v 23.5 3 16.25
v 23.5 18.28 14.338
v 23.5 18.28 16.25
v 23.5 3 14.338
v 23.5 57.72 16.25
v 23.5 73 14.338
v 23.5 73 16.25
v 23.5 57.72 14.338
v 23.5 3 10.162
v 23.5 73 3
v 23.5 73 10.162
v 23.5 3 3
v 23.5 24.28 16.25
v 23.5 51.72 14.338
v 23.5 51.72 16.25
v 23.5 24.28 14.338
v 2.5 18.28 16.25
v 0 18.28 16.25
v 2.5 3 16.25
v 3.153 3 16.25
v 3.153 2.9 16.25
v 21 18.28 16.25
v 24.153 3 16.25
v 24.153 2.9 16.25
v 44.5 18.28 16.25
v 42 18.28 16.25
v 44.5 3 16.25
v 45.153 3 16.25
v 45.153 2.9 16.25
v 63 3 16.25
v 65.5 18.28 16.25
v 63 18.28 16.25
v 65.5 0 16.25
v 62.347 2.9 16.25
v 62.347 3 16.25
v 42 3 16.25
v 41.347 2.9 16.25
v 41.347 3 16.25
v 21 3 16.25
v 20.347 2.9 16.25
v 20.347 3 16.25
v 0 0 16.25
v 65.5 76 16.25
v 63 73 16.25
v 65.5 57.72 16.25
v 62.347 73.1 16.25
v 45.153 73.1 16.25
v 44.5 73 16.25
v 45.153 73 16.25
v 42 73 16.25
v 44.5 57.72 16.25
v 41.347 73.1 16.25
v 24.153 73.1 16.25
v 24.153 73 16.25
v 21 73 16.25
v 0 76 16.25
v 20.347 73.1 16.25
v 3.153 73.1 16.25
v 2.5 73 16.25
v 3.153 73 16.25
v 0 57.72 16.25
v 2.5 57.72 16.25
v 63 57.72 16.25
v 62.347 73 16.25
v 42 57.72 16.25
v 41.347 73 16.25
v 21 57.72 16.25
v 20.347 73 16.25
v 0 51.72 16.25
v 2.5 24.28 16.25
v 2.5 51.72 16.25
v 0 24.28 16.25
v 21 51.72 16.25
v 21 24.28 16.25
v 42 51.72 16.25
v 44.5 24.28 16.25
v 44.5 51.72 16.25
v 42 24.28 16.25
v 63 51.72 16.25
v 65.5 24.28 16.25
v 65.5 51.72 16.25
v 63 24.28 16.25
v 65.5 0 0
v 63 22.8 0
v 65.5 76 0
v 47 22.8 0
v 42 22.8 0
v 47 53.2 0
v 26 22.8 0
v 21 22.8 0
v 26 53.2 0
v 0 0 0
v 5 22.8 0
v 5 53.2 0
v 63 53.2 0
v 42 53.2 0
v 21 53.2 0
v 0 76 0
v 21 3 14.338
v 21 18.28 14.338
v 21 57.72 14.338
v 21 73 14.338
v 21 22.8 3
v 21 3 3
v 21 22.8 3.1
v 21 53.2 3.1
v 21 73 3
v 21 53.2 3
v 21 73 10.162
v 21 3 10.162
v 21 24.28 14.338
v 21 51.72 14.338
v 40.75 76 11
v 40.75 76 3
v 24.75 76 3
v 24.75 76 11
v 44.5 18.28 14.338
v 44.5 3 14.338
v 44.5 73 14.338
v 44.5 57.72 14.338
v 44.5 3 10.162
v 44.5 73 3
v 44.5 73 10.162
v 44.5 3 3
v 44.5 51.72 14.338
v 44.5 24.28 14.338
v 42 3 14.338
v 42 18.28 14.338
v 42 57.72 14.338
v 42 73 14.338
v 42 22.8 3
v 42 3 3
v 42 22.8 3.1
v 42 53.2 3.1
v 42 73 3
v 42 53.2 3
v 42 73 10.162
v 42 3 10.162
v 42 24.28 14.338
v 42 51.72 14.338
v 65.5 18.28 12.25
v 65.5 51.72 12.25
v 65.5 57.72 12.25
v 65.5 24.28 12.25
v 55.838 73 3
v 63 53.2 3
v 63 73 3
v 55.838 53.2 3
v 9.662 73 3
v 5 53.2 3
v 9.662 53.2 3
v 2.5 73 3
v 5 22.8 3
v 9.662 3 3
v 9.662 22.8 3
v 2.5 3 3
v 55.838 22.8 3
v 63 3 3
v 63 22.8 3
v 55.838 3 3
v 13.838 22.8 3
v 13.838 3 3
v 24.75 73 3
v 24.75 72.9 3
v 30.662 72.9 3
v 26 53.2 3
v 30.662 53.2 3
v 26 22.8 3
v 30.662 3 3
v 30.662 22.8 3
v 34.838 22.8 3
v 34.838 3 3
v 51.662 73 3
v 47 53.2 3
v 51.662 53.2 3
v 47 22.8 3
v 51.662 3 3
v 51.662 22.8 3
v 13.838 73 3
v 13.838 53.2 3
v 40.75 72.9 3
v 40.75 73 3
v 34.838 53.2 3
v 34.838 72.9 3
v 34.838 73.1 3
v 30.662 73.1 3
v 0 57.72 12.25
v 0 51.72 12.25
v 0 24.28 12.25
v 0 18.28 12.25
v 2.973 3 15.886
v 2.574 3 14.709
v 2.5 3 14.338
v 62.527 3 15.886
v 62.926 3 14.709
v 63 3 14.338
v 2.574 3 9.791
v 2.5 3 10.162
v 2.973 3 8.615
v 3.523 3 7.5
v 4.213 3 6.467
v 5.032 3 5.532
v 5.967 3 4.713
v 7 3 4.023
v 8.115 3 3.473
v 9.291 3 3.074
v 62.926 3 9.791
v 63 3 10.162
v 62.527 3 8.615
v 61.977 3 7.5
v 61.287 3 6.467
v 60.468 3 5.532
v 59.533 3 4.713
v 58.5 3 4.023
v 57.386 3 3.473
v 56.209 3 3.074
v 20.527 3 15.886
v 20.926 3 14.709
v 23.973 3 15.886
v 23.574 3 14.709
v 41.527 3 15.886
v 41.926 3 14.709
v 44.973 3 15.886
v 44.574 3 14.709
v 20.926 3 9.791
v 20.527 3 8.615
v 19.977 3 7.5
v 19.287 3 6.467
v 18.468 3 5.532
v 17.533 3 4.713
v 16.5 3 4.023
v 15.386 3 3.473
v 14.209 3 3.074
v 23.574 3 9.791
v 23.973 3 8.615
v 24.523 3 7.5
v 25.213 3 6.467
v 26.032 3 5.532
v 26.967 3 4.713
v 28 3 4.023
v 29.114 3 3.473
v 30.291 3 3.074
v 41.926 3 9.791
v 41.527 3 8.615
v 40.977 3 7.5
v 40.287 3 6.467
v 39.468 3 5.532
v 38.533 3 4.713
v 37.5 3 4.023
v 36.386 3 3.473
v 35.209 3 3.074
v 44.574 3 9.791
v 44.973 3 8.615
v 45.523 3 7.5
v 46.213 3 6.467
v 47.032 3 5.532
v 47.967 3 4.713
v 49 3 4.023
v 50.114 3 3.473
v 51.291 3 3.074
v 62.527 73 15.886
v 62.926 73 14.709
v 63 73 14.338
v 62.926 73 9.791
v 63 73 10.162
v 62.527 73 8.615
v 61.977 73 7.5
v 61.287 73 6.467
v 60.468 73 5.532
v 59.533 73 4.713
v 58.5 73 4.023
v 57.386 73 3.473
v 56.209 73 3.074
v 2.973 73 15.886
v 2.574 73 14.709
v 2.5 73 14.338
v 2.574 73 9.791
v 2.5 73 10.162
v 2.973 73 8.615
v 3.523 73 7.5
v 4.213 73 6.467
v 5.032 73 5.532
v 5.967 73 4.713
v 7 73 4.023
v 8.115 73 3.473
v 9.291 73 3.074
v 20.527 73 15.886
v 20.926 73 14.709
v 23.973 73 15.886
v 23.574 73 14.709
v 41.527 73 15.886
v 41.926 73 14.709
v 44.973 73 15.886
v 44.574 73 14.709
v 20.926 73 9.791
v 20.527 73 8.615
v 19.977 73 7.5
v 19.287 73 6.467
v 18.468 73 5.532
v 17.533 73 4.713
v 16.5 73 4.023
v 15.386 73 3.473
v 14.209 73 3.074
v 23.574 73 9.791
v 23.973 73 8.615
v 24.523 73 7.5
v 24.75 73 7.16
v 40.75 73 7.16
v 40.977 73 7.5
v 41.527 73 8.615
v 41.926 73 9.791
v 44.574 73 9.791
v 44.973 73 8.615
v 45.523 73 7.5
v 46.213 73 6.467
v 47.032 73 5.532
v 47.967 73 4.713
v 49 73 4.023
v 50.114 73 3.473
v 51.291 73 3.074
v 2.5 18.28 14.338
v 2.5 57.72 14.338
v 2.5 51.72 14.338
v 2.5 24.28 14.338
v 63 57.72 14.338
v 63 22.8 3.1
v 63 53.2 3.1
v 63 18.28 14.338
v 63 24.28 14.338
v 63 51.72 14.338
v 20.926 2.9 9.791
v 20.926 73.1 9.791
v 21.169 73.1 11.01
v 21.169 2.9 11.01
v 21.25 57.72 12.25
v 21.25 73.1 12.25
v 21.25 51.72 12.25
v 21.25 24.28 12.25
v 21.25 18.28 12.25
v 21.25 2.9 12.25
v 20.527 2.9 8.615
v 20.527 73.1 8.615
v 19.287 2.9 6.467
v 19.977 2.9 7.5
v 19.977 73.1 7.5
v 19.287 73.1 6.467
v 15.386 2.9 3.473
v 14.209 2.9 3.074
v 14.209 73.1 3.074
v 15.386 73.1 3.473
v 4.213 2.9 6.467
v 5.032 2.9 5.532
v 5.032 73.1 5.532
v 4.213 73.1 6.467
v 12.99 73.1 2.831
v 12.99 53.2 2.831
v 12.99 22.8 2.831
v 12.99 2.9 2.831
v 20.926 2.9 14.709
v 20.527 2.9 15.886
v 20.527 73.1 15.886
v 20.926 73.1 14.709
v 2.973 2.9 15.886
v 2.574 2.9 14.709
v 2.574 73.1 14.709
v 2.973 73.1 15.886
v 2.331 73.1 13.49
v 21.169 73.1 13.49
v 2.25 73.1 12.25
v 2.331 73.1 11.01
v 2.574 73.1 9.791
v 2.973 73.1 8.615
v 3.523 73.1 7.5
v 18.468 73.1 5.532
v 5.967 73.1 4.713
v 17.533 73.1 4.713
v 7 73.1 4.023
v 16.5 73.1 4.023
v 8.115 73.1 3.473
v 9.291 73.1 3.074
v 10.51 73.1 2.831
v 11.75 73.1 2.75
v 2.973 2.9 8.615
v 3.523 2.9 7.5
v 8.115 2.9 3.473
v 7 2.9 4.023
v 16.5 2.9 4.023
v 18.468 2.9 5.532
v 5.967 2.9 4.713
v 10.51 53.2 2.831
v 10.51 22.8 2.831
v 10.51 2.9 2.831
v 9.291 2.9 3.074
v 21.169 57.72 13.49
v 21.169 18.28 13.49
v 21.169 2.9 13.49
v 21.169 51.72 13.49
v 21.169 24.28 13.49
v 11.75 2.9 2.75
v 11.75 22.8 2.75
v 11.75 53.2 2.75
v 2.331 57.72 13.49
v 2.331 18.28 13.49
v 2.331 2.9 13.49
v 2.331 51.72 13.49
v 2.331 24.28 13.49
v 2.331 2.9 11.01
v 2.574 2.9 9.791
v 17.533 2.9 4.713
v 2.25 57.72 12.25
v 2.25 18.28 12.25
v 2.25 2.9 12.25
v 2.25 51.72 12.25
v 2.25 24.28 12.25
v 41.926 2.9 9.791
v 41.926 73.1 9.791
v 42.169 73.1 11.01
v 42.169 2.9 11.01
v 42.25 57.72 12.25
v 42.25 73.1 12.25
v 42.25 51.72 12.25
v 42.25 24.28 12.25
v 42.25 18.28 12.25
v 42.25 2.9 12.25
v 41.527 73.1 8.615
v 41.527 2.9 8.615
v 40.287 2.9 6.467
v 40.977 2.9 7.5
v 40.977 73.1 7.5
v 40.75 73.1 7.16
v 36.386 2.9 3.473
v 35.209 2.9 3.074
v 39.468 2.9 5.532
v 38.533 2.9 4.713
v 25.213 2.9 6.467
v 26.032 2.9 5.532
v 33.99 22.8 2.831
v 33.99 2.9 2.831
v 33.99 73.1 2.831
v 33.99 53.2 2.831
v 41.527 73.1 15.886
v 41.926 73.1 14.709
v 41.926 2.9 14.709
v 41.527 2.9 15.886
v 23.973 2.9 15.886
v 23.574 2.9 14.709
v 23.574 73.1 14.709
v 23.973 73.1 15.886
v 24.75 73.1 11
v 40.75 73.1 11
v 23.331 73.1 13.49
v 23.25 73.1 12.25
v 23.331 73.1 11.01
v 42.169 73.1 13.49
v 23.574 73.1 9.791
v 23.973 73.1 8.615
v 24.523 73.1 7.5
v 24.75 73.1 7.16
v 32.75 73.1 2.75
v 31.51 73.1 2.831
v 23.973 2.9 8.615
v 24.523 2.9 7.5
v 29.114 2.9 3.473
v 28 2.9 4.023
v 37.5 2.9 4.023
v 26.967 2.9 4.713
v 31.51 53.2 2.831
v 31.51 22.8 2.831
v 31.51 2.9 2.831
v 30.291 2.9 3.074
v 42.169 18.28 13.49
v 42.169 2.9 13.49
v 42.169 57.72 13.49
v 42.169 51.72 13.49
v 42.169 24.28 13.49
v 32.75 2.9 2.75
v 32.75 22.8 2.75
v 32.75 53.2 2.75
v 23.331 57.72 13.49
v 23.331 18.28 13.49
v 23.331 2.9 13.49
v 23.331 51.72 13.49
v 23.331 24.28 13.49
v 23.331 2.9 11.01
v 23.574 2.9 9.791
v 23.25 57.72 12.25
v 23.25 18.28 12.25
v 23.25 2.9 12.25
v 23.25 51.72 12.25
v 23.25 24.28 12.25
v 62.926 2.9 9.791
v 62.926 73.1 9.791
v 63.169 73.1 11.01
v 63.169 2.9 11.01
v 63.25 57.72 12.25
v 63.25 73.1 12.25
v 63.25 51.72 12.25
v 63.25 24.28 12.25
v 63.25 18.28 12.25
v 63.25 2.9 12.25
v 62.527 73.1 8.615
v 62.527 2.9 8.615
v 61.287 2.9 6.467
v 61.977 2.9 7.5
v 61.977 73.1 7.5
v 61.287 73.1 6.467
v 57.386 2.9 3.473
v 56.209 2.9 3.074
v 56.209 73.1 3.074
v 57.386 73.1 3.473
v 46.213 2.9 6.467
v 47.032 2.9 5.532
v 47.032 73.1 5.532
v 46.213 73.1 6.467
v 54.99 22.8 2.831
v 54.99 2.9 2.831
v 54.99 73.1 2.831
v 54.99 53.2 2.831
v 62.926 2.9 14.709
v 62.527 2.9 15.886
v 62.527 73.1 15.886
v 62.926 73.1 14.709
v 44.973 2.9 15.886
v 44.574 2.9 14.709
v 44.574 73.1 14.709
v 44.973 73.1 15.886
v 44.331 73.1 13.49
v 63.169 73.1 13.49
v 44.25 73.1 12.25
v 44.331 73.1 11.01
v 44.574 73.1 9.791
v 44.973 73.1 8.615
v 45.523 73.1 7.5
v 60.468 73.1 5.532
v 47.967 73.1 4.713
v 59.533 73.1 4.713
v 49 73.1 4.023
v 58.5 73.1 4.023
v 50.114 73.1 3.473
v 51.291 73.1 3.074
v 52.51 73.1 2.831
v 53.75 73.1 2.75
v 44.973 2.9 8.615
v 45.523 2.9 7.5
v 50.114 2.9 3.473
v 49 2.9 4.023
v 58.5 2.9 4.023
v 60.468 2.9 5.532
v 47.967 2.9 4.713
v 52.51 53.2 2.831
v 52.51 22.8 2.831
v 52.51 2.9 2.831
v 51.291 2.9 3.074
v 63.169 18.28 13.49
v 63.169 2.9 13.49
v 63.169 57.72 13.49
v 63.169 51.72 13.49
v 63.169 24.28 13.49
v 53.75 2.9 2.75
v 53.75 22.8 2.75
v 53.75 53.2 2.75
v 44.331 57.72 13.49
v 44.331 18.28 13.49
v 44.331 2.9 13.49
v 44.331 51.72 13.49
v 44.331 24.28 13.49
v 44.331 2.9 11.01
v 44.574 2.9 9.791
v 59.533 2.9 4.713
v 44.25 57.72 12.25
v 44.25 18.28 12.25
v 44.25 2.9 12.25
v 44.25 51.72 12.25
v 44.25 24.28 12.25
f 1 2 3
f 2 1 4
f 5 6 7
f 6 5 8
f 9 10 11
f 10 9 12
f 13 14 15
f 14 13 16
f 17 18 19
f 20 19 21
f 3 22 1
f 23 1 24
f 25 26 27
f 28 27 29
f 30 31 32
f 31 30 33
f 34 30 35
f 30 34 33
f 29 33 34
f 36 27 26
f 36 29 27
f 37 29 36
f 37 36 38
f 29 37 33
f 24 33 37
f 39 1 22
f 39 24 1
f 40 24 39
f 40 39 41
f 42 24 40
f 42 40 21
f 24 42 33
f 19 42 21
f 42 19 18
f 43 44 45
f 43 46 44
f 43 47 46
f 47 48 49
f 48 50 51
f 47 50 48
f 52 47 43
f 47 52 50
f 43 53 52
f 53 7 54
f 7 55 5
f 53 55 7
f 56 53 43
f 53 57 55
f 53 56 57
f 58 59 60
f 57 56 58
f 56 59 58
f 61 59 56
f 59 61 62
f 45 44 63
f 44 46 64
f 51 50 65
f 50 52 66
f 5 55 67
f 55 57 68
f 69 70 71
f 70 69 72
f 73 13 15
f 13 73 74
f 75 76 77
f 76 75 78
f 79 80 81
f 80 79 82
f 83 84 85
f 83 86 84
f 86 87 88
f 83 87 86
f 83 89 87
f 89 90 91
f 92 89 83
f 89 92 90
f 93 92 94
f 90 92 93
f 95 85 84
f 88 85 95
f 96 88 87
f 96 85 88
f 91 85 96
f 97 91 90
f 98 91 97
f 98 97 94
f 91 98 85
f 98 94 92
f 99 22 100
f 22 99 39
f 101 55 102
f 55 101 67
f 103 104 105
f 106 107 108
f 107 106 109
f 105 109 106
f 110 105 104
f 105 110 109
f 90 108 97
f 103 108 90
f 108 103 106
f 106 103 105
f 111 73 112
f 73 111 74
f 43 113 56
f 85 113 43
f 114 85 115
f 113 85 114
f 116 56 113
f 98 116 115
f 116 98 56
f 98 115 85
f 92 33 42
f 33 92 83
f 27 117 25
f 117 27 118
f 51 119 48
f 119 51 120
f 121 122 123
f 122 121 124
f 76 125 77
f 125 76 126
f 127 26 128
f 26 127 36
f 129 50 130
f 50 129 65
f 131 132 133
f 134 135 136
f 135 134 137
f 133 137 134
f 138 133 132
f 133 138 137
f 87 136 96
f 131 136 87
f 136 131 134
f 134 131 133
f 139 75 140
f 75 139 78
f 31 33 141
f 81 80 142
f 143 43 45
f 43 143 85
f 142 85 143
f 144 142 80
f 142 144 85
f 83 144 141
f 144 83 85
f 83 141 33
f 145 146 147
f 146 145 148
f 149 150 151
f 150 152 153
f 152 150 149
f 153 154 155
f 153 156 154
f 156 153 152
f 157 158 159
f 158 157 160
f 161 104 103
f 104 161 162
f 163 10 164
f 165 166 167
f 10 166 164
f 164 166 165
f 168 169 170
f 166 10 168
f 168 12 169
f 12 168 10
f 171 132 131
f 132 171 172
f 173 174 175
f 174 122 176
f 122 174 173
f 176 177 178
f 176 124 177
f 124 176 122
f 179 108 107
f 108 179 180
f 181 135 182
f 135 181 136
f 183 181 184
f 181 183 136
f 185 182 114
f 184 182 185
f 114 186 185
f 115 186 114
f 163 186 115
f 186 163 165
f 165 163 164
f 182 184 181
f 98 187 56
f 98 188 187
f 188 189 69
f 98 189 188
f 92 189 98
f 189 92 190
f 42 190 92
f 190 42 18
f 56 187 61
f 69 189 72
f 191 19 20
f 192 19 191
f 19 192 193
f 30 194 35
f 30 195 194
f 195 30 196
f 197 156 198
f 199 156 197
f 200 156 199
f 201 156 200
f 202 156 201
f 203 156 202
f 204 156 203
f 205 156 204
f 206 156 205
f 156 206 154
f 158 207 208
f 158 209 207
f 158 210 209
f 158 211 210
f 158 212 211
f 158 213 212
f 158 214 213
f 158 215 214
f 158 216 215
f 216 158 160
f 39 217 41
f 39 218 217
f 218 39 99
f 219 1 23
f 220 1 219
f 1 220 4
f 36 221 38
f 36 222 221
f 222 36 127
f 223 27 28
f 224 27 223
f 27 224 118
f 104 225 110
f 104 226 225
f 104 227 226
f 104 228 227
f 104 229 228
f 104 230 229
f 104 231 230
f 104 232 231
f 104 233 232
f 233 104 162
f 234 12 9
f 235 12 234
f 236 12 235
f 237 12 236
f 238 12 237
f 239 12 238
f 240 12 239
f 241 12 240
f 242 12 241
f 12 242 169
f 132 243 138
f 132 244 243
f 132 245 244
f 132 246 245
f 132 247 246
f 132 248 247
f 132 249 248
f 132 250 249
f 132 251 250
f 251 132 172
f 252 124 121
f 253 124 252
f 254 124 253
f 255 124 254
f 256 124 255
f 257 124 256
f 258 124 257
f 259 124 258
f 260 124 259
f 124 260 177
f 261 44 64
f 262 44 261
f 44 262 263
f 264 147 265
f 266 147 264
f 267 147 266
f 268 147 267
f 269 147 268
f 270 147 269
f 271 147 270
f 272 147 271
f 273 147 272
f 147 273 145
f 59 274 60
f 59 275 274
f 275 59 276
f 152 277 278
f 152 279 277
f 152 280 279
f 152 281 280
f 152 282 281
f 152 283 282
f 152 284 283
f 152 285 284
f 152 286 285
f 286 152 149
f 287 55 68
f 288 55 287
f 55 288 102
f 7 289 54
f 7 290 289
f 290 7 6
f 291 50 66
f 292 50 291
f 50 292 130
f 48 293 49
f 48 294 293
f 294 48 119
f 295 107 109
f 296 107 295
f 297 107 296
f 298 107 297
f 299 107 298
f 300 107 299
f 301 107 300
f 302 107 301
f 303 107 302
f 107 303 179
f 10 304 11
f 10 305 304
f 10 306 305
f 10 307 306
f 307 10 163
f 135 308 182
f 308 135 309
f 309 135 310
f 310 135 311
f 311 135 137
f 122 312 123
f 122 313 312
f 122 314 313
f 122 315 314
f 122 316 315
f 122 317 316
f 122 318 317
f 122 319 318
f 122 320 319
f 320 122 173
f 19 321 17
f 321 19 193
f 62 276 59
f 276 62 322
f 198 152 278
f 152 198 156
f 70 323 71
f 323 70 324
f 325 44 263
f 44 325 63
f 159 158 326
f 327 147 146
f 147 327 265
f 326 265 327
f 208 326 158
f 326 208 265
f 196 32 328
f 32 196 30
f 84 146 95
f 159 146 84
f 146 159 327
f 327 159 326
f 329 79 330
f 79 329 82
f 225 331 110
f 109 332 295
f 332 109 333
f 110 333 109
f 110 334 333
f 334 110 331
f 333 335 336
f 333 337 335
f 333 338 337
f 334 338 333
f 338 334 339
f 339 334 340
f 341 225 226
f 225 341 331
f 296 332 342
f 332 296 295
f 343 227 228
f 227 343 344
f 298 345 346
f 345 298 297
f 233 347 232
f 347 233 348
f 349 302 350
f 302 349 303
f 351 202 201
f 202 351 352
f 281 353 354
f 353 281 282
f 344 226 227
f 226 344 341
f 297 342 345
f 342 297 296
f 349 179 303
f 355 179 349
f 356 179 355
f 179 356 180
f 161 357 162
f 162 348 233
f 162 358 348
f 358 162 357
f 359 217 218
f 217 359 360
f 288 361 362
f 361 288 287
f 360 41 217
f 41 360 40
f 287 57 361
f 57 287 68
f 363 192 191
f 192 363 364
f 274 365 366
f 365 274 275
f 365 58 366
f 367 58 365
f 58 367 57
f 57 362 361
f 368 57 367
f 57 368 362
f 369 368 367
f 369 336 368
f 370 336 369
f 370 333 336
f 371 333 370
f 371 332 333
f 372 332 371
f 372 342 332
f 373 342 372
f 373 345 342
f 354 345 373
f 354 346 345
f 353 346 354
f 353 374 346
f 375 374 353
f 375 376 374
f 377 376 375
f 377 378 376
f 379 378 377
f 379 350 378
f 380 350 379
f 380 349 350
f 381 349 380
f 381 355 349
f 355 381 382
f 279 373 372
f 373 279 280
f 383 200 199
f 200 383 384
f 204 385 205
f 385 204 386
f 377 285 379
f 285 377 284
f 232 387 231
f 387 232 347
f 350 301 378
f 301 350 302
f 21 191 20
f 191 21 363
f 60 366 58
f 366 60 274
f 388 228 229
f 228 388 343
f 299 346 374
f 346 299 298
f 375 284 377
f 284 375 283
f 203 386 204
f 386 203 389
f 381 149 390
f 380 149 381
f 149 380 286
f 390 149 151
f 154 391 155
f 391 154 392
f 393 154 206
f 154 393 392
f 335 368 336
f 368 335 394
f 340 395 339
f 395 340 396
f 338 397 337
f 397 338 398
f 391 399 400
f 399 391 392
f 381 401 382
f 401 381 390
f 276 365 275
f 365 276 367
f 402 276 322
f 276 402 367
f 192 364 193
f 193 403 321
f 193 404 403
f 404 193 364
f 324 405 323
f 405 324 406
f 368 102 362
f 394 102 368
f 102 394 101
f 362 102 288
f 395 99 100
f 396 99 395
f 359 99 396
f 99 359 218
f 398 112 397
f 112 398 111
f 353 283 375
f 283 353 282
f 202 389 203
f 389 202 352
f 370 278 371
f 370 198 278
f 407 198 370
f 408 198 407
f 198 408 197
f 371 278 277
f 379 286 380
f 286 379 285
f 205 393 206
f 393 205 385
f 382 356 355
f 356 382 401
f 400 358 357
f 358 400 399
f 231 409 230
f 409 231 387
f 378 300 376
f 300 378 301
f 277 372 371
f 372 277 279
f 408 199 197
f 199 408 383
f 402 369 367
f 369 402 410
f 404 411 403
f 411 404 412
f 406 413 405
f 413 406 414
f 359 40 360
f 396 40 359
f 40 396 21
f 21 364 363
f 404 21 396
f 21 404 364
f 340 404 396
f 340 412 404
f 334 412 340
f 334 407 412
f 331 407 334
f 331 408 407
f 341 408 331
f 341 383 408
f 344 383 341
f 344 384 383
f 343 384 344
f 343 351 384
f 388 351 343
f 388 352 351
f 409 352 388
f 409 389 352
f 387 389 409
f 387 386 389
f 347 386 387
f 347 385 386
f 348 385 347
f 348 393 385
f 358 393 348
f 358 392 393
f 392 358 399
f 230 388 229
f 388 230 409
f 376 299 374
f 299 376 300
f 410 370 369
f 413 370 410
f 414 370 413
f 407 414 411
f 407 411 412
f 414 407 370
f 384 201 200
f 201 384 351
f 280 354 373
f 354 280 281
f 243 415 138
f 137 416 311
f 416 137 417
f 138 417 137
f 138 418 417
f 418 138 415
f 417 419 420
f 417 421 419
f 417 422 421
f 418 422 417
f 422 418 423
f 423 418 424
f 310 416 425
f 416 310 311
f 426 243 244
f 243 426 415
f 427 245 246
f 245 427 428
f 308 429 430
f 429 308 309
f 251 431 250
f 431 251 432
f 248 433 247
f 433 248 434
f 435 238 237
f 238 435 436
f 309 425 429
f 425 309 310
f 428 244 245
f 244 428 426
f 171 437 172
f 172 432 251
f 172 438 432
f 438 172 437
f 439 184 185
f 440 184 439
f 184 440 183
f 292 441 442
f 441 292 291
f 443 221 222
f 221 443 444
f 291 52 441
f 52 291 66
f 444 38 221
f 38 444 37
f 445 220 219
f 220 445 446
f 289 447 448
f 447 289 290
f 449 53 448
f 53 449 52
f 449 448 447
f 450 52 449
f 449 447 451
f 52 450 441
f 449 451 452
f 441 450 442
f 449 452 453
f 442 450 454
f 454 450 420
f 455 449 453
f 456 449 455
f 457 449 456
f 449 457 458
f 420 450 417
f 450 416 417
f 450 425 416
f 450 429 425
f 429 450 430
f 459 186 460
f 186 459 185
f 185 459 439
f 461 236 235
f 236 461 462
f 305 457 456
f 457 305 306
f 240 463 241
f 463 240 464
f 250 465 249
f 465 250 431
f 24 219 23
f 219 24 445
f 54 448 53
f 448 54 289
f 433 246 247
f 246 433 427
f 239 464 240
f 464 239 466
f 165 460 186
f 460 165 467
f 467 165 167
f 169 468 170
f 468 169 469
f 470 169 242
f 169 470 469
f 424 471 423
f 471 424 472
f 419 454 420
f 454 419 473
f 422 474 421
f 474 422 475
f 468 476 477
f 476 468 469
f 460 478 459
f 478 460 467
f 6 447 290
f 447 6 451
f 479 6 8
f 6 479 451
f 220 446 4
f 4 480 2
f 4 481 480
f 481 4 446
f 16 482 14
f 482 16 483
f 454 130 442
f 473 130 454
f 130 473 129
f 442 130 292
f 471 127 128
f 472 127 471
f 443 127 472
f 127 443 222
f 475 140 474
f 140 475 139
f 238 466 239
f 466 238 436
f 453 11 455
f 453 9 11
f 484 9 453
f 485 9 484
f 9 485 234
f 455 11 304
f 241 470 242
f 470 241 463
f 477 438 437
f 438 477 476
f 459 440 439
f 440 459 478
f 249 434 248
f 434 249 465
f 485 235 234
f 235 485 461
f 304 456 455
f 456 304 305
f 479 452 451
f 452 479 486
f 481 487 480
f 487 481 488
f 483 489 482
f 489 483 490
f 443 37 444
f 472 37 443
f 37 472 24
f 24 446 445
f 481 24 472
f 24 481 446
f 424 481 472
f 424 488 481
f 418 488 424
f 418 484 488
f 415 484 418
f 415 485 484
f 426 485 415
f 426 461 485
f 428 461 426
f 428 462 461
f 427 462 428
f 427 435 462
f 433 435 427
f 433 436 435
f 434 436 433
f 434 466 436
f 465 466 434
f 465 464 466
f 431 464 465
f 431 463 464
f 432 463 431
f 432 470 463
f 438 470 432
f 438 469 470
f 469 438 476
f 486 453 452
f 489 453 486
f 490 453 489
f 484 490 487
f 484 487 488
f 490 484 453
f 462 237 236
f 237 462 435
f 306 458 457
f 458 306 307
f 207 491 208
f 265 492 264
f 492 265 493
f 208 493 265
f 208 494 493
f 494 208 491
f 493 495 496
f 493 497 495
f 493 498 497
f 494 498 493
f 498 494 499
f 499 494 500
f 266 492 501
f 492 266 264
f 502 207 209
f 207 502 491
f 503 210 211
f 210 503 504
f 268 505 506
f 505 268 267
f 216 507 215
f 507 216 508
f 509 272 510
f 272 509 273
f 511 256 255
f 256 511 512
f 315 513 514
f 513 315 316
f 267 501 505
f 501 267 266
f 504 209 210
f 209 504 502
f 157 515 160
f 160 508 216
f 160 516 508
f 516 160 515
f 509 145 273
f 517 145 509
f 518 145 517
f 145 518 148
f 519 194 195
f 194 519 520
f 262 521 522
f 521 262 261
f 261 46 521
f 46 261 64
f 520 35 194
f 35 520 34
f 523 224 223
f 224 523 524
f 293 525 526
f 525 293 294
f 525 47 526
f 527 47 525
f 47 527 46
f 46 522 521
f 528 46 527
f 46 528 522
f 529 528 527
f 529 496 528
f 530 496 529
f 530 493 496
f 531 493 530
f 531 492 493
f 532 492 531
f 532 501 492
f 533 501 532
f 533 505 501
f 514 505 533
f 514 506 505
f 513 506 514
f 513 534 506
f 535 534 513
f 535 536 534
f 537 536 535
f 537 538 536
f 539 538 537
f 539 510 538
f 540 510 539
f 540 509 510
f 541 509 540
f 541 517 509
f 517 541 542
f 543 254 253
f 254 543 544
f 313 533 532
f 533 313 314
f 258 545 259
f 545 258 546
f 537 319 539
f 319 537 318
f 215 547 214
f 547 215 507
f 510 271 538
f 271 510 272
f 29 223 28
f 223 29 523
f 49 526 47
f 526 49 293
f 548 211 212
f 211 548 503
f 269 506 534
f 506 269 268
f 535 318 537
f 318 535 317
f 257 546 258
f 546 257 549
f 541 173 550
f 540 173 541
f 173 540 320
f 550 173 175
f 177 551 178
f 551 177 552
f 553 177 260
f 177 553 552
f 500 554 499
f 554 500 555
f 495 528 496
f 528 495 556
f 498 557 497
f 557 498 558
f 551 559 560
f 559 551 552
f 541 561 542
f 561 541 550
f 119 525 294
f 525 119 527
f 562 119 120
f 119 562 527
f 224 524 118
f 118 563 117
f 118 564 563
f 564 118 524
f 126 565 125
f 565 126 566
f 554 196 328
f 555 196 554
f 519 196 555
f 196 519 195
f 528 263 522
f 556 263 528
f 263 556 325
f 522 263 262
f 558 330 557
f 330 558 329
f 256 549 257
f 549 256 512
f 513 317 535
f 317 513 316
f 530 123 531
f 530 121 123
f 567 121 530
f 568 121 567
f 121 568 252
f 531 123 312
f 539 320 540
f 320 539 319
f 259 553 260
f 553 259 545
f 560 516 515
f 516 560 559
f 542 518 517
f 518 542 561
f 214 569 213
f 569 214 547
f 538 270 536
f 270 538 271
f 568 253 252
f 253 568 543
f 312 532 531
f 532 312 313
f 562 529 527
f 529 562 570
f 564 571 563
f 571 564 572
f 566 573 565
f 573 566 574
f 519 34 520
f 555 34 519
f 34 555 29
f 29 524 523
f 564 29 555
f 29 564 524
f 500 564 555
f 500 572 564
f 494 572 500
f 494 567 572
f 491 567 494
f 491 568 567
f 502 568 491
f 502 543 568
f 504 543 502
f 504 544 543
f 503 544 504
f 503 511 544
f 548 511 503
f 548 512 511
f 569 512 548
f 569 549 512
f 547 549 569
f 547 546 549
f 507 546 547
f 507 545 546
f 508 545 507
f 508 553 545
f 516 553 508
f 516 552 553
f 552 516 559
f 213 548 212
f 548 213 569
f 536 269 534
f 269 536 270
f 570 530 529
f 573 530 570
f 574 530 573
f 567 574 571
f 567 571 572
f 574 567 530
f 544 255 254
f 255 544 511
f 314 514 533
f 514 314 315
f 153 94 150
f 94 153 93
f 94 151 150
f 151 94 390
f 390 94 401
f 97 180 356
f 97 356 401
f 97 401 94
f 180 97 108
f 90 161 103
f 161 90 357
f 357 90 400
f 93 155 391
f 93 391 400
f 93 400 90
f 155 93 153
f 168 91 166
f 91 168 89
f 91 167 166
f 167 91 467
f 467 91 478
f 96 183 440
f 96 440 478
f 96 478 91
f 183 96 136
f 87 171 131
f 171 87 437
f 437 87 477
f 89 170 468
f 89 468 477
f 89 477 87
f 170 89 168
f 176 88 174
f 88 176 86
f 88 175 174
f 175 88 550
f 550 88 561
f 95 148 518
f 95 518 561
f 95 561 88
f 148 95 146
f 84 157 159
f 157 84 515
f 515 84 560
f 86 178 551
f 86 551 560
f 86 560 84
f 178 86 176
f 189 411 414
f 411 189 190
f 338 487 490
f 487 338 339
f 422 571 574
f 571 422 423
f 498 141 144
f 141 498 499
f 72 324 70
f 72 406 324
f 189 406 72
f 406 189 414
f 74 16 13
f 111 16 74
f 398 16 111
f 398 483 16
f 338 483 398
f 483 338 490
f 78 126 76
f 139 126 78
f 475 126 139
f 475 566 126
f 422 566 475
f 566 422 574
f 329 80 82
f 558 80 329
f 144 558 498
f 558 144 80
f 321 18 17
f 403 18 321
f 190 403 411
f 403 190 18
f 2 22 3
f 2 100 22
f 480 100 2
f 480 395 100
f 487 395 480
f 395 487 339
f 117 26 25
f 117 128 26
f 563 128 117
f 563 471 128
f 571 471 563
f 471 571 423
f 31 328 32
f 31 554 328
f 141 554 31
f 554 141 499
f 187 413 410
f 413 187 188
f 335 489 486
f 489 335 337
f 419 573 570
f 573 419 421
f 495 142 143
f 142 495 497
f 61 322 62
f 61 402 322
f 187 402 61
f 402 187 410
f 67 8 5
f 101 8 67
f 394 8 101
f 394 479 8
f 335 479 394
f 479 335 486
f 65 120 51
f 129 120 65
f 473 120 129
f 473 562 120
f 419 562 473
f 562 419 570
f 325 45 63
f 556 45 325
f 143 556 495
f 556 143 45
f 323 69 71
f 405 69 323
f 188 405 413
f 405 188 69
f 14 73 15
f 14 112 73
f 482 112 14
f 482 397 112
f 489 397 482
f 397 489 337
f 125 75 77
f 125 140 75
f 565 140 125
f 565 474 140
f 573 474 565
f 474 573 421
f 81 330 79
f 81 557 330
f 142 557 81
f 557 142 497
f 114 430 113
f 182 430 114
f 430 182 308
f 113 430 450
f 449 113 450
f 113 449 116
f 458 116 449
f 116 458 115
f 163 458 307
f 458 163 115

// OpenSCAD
// ============================================================
//  MSE-6 — Battery Tray (3× 18650 cells in series = 3S pack)
//  Mounts on Wave Rover expansion plate alongside Jetson tray.
//
//  18650 cell: Ø18.5mm × 65mm (with protection circuit ~70mm)
//  3S pack arranged side-by-side (not in-line) to minimise length
//  Pack footprint: 3 × 18.5mm + walls ≈ 62mm wide × 72mm long
//
//  Features:
//    – 3 cell tubes with spring-tab retention
//    – 2× Velcro strap slots (5mm wide) for belt security
//    – Vent slots between cells
//    – 2× M3 holes matching rover expansion plate holes
//    – Wire exit notch (rear) for battery leads / BMS board
//    – Low-profile: 22mm tall (cell OD + base = 18.5+3.5)
//
//  Wave Rover expansion plate: ~117 x 127mm
//  Jetson tray: 114 x 88mm  →  battery tray fills remaining space
// ============================================================
$fn = 48;

// Cell dimensions
cell_d   = 18.5;   // 18650 diameter (protected)
cell_l   = 70.0;   // 18650 length (protected)
n_cells  = 3;

// Wall / structure
wall     =  2.5;
base_t   =  3.0;
end_t    =  3.0;   // end wall thickness

// Tray outer dimensions
tray_w   = n_cells * cell_d + (n_cells + 1) * wall;  // ~62.5mm
tray_l   = cell_l + end_t * 2;                        // ~76mm
tray_h   = cell_d / 2 + base_t + 4;                  // ~18mm (half-tube cradle)

// Strap slots
strap_w  =  6.0;
strap_h  =  4.0;

// M3 mount holes (2, matching rover plate)
m3_d     =  3.4;

// Wire exit notch
wire_w   = 16.0;
wire_h   =  8.0;

module cell_tube(x, y) {
    // Half-tube cradle for one cell
    translate([x, end_t, base_t])
    difference() {
        // Solid half-cylinder saddle
        rotate([90, 0, 0]) {
            // Outer shell
            cylinder(d = cell_d + wall*2, h = -(cell_l), center=false);
        }
        // Cell bore (full cylinder - leaves half saddle after base diff)
        translate([0, -(cell_l+0.1), 0])
            rotate([90, 0, 0])
                cylinder(d = cell_d + 0.4, h = cell_l + 0.2);
        // Open top (cut upper half)
        translate([-(cell_d/2+wall+0.1), -(cell_l+0.1), 0])
            cube([cell_d + wall*2 + 0.2, cell_l + 0.2, cell_d]);
    }
}

module battery_tray() {
    difference() {
        union() {
            // Base plate
            cube([tray_w, tray_l, base_t]);

            // End walls
            cube([tray_w, end_t, tray_h]);
            translate([0, tray_l - end_t, 0])
                cube([tray_w, end_t, tray_h]);

            // Side walls
            cube([wall, tray_l, tray_h]);
            translate([tray_w - wall, 0, 0])
                cube([wall, tray_l, tray_h]);

            // Cell dividers between cells
            for (i = [1 : n_cells-1])
                translate([i * (cell_d + wall), 0, 0])
                    cube([wall, tray_l, tray_h]);
        }

        // Cell bores (half-round cradles)
        for (i = [0 : n_cells-1]) {
            cx = wall + cell_d/2 + i * (cell_d + wall);
            // Cell bore
            translate([cx, end_t - 0.1, base_t + cell_d/2])
                rotate([-90, 0, 0])
                    cylinder(d = cell_d + 0.5, h = cell_l + 0.2);
        }

        // Vent slots between cells (base)
        for (i = [0 : n_cells-1]) {
            cx = wall + i * (cell_d + wall) + wall/2;
            translate([cx + wall/2, tray_l * 0.3, -0.1])
                cube([cell_d - wall, tray_l * 0.4, base_t + 0.2]);
        }

        // Strap slots (2 cross slots through side walls)
        for (sy = [tray_l*0.28, tray_l*0.72])
            translate([-0.1, sy - strap_w/2, tray_h - strap_h])
                cube([tray_w + 0.2, strap_w, strap_h + 0.1]);

        // Wire exit notch (rear wall)
        translate([tray_w/2 - wire_w/2, tray_l - end_t - 0.1, base_t])
            cube([wire_w, end_t + 0.2, wire_h]);

        // M3 mount holes (through base, near rover plate holes)
        translate([tray_w * 0.2, tray_l * 0.5, -0.1])
            cylinder(d = m3_d, h = base_t + 0.2);
        translate([tray_w * 0.8, tray_l * 0.5, -0.1])
            cylinder(d = m3_d, h = base_t + 0.2);
    }
}

battery_tray();
